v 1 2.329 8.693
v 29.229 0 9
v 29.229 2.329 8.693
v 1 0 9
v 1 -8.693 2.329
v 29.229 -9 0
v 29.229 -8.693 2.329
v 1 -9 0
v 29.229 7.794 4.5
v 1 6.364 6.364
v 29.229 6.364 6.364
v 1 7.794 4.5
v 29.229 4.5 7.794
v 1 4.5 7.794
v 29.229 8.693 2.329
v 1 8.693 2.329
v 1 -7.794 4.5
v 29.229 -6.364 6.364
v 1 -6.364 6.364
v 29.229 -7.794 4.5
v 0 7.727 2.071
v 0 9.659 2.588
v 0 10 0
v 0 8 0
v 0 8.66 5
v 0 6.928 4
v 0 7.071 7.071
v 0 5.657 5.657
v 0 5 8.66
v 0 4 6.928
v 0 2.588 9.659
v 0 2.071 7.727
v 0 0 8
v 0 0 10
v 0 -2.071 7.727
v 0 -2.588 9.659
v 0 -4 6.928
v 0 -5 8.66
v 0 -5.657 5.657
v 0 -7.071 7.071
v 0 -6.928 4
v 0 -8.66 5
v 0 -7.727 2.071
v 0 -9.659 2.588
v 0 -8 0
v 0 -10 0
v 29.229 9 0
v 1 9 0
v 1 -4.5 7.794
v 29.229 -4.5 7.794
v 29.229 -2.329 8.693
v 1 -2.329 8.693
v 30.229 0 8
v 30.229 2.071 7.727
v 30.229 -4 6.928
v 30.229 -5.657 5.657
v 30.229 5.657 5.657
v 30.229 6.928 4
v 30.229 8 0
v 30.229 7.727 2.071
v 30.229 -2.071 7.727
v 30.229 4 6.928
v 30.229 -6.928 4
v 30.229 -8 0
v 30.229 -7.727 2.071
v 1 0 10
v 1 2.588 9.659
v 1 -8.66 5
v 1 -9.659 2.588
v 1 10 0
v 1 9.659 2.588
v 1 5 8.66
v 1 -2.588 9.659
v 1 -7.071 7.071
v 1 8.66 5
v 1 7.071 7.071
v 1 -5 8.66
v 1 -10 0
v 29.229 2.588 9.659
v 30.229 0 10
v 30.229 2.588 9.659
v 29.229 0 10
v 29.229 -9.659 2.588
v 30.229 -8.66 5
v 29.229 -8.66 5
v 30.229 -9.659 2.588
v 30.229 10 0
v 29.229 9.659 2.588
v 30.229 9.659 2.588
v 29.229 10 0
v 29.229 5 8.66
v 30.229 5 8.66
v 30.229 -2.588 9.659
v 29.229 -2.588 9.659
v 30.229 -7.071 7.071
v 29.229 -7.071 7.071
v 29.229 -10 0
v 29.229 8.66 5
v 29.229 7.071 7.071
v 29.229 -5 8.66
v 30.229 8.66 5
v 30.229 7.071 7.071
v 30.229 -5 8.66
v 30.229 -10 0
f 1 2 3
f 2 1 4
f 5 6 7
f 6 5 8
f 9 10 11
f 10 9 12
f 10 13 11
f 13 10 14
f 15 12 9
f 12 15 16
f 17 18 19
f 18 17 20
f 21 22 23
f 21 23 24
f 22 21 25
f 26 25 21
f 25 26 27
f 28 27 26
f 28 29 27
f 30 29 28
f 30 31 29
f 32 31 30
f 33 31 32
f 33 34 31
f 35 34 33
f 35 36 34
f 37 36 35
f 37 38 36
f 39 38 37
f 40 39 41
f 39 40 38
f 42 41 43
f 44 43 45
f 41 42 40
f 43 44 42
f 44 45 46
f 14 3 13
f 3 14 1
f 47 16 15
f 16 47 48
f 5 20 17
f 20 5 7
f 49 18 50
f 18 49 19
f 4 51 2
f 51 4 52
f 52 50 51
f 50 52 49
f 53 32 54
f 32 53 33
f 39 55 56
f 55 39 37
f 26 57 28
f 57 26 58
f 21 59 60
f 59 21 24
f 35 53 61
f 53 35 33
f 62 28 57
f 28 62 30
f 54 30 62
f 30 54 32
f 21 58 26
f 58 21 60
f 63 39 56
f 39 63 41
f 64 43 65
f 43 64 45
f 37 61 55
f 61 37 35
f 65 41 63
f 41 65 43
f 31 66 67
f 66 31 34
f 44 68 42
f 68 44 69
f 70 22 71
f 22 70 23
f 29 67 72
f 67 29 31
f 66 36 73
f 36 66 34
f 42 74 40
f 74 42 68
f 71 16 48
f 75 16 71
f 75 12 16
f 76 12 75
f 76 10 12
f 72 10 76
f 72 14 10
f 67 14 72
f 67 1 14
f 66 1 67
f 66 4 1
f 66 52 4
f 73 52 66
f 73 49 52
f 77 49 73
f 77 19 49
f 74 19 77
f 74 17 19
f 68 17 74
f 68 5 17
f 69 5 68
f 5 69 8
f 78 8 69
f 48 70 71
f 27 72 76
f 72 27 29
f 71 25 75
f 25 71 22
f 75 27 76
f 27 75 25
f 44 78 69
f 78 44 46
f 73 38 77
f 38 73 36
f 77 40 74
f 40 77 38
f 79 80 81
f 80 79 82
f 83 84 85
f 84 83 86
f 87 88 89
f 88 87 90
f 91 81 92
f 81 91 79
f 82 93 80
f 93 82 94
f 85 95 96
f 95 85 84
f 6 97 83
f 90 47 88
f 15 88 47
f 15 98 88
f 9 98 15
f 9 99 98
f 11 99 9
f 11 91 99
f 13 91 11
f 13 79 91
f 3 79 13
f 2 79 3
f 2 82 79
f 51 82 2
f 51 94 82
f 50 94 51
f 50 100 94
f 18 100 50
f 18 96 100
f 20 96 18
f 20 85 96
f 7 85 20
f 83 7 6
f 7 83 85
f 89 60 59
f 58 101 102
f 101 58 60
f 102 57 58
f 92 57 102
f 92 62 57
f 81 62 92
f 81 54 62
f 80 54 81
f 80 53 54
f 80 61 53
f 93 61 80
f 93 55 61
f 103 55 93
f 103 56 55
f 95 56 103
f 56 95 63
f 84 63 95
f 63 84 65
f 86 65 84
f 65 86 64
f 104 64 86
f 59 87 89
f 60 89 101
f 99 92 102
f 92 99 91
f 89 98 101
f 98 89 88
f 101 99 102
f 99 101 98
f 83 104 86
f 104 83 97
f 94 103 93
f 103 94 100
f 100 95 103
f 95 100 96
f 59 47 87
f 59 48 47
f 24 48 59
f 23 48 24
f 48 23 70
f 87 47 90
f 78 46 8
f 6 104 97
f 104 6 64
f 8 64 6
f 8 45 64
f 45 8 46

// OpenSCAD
// file: ../build_environments.scad
// build_environments.scad: modules to build level sections
//

module pool(diameter=10.0, wall_height=2.0, step_width=3.0, connections=[])
{
    difference() {
        union() {
        difference() {
            cylinder(h=0.5,r1=diameter+step_width,r2=diameter+step_width,$fn=48);
            translate([0,0,-0.1])
                cylinder(h=0.7,r1=diameter,r2=diameter,$fn=48);
        }
        difference() {
            cylinder(h=wall_height,r1=diameter+step_width+1.0,r2=diameter+step_width+1.0,$fn=48);
            translate([0,0,-0.1])
                cylinder(h=wall_height+0.2,r1=diameter+step_width,r2=diameter+step_width,$fn=48);
        }
        }
    
        for (c = connections)
        {
            rotate([0,90,0]) {
                angle = atan2(c[1],c[0]);
                rotate([-angle,0,0]) {
                    cylinder(h=diameter+5.0,r1=c[2],r2=c[2],$fn=48);
                }
            }
        }
    }
}

module straight(length=10.0, width=2.0, dy1=0.0, dy2=0.0, dz=0.0)
{
    dims = [0, 0, 0, 0, 0, (dz/length)];
    matrix = [
        [ 1, dims[0], dims[1], 0 ],
        [ dims[2], 1, dims[4], 0 ],
        [ dims[5], dims[3], 1, 0 ],
        [ 0, 0, 0, 1 ]
    ];
    multmatrix(matrix)
    difference() {
        translate([dy1,0,0])
        union() {
            rotate([0,90,0]) {
                difference() {
                    cylinder(h=(length-dy1-dy2),r1=width+1.0,r2=width+1.0,$fn=24);
                    translate([0,0,-0.1])
                        cylinder(h=(length-dy1-dy2+0.2),r1=width,r2=width,$fn=24);
                }
                difference() {
                    cylinder(h=1.0,r1=width+2.0,r2=width+2.0,$fn=24);
                    translate([0,0,-0.1])
                        cylinder(h=1.2,r1=width,r2=width,$fn=24);
                }
                translate([0,0,(length-dy1-dy2)-1.0]) {
                    difference() {
                        cylinder(h=1.0,r1=width+2.0,r2=width+2.0,$fn=24);
                        translate([0,0,-0.1])
                            cylinder(h=1.2,r1=width,r2=width,$fn=24);
                    }
                }
            }
        }
        translate([0,0,-(2*width+4.0)/2])
            cube([3*length,3*length,2*width+4.0],center=true);
    }
}

module curve(p0=[0,0], center=[0,0], dir=1, angle=0.0, width=2.0)
{
    radius = sqrt((p0[0]-center[0])*(p0[0]-center[0]) + (p0[1]-center[1])*(p0[1]-center[1]));
    if (dir == 0) {
        difference() {
            rotate([0,0,-90])
            difference() {
                rotate_extrude(angle = angle, convexity = 10, $fn=32)
                    translate([radius, 0, 0])
                        circle(r = width+1.0,$fn=24);
                rotate([0,0,-1.0])
                    rotate_extrude(angle = angle+2.0, convexity = 10, $fn=32)
                        translate([radius, 0, 0])
                            circle(r = width,$fn=24);
            }
            translate([0,0,-(2*width+4.0)/2])
                cube([5*radius,5*radius,2*width+4.0],center=true);
        }
    }
    else {
        difference() {
            rotate([0,0,90])
            difference() {
                rotate_extrude(angle = -angle, convexity = 10, $fn=32)
                    translate([radius, 0, 0])
                        circle(r = width+1.0,$fn=24);
                rotate([0,0,1.0])
                    rotate_extrude(angle = -angle-2.0, convexity = 10, $fn=32)
                        translate([radius, 0, 0])
                            circle(r = width,$fn=24);
            }
            translate([0,0,-(2*width+4.0)/2])
                cube([5*radius,5*radius,2*width+4.0],center=true);
        }
    }

}

// test pool
//pool(diameter=12.0000, wall_height=3.0000, step_width=3.0000, connections=[[0.0000,-26.0000,2.0000], [23.6074,0.0000,2.0000]]);

// test straight, slope
//straight(length=26.0000, width=2.0000, dy1=11.8322, dy2=6.7082, dz=0.0000);
//straight(length=29.1549, width=12.0000, dy1=0.0000, dy2=0.0000, dz=-15.0000);

// test curve
//curve(p0=[23.6074, 0.0000], center=[23.6074, 5.0000], dir=0, angle=60.1011, width=2.0000);
//curve(p0=[33.6426, 12.4219], center=[37.9771, 9.9295], dir=1, angle=120.4627, width=2.0000);
// main file
use <../build_environments.scad>;
straight(length=30.2294, width=8.0000, dy1=0.0000, dy2=0.0000, dz=0.0000);
